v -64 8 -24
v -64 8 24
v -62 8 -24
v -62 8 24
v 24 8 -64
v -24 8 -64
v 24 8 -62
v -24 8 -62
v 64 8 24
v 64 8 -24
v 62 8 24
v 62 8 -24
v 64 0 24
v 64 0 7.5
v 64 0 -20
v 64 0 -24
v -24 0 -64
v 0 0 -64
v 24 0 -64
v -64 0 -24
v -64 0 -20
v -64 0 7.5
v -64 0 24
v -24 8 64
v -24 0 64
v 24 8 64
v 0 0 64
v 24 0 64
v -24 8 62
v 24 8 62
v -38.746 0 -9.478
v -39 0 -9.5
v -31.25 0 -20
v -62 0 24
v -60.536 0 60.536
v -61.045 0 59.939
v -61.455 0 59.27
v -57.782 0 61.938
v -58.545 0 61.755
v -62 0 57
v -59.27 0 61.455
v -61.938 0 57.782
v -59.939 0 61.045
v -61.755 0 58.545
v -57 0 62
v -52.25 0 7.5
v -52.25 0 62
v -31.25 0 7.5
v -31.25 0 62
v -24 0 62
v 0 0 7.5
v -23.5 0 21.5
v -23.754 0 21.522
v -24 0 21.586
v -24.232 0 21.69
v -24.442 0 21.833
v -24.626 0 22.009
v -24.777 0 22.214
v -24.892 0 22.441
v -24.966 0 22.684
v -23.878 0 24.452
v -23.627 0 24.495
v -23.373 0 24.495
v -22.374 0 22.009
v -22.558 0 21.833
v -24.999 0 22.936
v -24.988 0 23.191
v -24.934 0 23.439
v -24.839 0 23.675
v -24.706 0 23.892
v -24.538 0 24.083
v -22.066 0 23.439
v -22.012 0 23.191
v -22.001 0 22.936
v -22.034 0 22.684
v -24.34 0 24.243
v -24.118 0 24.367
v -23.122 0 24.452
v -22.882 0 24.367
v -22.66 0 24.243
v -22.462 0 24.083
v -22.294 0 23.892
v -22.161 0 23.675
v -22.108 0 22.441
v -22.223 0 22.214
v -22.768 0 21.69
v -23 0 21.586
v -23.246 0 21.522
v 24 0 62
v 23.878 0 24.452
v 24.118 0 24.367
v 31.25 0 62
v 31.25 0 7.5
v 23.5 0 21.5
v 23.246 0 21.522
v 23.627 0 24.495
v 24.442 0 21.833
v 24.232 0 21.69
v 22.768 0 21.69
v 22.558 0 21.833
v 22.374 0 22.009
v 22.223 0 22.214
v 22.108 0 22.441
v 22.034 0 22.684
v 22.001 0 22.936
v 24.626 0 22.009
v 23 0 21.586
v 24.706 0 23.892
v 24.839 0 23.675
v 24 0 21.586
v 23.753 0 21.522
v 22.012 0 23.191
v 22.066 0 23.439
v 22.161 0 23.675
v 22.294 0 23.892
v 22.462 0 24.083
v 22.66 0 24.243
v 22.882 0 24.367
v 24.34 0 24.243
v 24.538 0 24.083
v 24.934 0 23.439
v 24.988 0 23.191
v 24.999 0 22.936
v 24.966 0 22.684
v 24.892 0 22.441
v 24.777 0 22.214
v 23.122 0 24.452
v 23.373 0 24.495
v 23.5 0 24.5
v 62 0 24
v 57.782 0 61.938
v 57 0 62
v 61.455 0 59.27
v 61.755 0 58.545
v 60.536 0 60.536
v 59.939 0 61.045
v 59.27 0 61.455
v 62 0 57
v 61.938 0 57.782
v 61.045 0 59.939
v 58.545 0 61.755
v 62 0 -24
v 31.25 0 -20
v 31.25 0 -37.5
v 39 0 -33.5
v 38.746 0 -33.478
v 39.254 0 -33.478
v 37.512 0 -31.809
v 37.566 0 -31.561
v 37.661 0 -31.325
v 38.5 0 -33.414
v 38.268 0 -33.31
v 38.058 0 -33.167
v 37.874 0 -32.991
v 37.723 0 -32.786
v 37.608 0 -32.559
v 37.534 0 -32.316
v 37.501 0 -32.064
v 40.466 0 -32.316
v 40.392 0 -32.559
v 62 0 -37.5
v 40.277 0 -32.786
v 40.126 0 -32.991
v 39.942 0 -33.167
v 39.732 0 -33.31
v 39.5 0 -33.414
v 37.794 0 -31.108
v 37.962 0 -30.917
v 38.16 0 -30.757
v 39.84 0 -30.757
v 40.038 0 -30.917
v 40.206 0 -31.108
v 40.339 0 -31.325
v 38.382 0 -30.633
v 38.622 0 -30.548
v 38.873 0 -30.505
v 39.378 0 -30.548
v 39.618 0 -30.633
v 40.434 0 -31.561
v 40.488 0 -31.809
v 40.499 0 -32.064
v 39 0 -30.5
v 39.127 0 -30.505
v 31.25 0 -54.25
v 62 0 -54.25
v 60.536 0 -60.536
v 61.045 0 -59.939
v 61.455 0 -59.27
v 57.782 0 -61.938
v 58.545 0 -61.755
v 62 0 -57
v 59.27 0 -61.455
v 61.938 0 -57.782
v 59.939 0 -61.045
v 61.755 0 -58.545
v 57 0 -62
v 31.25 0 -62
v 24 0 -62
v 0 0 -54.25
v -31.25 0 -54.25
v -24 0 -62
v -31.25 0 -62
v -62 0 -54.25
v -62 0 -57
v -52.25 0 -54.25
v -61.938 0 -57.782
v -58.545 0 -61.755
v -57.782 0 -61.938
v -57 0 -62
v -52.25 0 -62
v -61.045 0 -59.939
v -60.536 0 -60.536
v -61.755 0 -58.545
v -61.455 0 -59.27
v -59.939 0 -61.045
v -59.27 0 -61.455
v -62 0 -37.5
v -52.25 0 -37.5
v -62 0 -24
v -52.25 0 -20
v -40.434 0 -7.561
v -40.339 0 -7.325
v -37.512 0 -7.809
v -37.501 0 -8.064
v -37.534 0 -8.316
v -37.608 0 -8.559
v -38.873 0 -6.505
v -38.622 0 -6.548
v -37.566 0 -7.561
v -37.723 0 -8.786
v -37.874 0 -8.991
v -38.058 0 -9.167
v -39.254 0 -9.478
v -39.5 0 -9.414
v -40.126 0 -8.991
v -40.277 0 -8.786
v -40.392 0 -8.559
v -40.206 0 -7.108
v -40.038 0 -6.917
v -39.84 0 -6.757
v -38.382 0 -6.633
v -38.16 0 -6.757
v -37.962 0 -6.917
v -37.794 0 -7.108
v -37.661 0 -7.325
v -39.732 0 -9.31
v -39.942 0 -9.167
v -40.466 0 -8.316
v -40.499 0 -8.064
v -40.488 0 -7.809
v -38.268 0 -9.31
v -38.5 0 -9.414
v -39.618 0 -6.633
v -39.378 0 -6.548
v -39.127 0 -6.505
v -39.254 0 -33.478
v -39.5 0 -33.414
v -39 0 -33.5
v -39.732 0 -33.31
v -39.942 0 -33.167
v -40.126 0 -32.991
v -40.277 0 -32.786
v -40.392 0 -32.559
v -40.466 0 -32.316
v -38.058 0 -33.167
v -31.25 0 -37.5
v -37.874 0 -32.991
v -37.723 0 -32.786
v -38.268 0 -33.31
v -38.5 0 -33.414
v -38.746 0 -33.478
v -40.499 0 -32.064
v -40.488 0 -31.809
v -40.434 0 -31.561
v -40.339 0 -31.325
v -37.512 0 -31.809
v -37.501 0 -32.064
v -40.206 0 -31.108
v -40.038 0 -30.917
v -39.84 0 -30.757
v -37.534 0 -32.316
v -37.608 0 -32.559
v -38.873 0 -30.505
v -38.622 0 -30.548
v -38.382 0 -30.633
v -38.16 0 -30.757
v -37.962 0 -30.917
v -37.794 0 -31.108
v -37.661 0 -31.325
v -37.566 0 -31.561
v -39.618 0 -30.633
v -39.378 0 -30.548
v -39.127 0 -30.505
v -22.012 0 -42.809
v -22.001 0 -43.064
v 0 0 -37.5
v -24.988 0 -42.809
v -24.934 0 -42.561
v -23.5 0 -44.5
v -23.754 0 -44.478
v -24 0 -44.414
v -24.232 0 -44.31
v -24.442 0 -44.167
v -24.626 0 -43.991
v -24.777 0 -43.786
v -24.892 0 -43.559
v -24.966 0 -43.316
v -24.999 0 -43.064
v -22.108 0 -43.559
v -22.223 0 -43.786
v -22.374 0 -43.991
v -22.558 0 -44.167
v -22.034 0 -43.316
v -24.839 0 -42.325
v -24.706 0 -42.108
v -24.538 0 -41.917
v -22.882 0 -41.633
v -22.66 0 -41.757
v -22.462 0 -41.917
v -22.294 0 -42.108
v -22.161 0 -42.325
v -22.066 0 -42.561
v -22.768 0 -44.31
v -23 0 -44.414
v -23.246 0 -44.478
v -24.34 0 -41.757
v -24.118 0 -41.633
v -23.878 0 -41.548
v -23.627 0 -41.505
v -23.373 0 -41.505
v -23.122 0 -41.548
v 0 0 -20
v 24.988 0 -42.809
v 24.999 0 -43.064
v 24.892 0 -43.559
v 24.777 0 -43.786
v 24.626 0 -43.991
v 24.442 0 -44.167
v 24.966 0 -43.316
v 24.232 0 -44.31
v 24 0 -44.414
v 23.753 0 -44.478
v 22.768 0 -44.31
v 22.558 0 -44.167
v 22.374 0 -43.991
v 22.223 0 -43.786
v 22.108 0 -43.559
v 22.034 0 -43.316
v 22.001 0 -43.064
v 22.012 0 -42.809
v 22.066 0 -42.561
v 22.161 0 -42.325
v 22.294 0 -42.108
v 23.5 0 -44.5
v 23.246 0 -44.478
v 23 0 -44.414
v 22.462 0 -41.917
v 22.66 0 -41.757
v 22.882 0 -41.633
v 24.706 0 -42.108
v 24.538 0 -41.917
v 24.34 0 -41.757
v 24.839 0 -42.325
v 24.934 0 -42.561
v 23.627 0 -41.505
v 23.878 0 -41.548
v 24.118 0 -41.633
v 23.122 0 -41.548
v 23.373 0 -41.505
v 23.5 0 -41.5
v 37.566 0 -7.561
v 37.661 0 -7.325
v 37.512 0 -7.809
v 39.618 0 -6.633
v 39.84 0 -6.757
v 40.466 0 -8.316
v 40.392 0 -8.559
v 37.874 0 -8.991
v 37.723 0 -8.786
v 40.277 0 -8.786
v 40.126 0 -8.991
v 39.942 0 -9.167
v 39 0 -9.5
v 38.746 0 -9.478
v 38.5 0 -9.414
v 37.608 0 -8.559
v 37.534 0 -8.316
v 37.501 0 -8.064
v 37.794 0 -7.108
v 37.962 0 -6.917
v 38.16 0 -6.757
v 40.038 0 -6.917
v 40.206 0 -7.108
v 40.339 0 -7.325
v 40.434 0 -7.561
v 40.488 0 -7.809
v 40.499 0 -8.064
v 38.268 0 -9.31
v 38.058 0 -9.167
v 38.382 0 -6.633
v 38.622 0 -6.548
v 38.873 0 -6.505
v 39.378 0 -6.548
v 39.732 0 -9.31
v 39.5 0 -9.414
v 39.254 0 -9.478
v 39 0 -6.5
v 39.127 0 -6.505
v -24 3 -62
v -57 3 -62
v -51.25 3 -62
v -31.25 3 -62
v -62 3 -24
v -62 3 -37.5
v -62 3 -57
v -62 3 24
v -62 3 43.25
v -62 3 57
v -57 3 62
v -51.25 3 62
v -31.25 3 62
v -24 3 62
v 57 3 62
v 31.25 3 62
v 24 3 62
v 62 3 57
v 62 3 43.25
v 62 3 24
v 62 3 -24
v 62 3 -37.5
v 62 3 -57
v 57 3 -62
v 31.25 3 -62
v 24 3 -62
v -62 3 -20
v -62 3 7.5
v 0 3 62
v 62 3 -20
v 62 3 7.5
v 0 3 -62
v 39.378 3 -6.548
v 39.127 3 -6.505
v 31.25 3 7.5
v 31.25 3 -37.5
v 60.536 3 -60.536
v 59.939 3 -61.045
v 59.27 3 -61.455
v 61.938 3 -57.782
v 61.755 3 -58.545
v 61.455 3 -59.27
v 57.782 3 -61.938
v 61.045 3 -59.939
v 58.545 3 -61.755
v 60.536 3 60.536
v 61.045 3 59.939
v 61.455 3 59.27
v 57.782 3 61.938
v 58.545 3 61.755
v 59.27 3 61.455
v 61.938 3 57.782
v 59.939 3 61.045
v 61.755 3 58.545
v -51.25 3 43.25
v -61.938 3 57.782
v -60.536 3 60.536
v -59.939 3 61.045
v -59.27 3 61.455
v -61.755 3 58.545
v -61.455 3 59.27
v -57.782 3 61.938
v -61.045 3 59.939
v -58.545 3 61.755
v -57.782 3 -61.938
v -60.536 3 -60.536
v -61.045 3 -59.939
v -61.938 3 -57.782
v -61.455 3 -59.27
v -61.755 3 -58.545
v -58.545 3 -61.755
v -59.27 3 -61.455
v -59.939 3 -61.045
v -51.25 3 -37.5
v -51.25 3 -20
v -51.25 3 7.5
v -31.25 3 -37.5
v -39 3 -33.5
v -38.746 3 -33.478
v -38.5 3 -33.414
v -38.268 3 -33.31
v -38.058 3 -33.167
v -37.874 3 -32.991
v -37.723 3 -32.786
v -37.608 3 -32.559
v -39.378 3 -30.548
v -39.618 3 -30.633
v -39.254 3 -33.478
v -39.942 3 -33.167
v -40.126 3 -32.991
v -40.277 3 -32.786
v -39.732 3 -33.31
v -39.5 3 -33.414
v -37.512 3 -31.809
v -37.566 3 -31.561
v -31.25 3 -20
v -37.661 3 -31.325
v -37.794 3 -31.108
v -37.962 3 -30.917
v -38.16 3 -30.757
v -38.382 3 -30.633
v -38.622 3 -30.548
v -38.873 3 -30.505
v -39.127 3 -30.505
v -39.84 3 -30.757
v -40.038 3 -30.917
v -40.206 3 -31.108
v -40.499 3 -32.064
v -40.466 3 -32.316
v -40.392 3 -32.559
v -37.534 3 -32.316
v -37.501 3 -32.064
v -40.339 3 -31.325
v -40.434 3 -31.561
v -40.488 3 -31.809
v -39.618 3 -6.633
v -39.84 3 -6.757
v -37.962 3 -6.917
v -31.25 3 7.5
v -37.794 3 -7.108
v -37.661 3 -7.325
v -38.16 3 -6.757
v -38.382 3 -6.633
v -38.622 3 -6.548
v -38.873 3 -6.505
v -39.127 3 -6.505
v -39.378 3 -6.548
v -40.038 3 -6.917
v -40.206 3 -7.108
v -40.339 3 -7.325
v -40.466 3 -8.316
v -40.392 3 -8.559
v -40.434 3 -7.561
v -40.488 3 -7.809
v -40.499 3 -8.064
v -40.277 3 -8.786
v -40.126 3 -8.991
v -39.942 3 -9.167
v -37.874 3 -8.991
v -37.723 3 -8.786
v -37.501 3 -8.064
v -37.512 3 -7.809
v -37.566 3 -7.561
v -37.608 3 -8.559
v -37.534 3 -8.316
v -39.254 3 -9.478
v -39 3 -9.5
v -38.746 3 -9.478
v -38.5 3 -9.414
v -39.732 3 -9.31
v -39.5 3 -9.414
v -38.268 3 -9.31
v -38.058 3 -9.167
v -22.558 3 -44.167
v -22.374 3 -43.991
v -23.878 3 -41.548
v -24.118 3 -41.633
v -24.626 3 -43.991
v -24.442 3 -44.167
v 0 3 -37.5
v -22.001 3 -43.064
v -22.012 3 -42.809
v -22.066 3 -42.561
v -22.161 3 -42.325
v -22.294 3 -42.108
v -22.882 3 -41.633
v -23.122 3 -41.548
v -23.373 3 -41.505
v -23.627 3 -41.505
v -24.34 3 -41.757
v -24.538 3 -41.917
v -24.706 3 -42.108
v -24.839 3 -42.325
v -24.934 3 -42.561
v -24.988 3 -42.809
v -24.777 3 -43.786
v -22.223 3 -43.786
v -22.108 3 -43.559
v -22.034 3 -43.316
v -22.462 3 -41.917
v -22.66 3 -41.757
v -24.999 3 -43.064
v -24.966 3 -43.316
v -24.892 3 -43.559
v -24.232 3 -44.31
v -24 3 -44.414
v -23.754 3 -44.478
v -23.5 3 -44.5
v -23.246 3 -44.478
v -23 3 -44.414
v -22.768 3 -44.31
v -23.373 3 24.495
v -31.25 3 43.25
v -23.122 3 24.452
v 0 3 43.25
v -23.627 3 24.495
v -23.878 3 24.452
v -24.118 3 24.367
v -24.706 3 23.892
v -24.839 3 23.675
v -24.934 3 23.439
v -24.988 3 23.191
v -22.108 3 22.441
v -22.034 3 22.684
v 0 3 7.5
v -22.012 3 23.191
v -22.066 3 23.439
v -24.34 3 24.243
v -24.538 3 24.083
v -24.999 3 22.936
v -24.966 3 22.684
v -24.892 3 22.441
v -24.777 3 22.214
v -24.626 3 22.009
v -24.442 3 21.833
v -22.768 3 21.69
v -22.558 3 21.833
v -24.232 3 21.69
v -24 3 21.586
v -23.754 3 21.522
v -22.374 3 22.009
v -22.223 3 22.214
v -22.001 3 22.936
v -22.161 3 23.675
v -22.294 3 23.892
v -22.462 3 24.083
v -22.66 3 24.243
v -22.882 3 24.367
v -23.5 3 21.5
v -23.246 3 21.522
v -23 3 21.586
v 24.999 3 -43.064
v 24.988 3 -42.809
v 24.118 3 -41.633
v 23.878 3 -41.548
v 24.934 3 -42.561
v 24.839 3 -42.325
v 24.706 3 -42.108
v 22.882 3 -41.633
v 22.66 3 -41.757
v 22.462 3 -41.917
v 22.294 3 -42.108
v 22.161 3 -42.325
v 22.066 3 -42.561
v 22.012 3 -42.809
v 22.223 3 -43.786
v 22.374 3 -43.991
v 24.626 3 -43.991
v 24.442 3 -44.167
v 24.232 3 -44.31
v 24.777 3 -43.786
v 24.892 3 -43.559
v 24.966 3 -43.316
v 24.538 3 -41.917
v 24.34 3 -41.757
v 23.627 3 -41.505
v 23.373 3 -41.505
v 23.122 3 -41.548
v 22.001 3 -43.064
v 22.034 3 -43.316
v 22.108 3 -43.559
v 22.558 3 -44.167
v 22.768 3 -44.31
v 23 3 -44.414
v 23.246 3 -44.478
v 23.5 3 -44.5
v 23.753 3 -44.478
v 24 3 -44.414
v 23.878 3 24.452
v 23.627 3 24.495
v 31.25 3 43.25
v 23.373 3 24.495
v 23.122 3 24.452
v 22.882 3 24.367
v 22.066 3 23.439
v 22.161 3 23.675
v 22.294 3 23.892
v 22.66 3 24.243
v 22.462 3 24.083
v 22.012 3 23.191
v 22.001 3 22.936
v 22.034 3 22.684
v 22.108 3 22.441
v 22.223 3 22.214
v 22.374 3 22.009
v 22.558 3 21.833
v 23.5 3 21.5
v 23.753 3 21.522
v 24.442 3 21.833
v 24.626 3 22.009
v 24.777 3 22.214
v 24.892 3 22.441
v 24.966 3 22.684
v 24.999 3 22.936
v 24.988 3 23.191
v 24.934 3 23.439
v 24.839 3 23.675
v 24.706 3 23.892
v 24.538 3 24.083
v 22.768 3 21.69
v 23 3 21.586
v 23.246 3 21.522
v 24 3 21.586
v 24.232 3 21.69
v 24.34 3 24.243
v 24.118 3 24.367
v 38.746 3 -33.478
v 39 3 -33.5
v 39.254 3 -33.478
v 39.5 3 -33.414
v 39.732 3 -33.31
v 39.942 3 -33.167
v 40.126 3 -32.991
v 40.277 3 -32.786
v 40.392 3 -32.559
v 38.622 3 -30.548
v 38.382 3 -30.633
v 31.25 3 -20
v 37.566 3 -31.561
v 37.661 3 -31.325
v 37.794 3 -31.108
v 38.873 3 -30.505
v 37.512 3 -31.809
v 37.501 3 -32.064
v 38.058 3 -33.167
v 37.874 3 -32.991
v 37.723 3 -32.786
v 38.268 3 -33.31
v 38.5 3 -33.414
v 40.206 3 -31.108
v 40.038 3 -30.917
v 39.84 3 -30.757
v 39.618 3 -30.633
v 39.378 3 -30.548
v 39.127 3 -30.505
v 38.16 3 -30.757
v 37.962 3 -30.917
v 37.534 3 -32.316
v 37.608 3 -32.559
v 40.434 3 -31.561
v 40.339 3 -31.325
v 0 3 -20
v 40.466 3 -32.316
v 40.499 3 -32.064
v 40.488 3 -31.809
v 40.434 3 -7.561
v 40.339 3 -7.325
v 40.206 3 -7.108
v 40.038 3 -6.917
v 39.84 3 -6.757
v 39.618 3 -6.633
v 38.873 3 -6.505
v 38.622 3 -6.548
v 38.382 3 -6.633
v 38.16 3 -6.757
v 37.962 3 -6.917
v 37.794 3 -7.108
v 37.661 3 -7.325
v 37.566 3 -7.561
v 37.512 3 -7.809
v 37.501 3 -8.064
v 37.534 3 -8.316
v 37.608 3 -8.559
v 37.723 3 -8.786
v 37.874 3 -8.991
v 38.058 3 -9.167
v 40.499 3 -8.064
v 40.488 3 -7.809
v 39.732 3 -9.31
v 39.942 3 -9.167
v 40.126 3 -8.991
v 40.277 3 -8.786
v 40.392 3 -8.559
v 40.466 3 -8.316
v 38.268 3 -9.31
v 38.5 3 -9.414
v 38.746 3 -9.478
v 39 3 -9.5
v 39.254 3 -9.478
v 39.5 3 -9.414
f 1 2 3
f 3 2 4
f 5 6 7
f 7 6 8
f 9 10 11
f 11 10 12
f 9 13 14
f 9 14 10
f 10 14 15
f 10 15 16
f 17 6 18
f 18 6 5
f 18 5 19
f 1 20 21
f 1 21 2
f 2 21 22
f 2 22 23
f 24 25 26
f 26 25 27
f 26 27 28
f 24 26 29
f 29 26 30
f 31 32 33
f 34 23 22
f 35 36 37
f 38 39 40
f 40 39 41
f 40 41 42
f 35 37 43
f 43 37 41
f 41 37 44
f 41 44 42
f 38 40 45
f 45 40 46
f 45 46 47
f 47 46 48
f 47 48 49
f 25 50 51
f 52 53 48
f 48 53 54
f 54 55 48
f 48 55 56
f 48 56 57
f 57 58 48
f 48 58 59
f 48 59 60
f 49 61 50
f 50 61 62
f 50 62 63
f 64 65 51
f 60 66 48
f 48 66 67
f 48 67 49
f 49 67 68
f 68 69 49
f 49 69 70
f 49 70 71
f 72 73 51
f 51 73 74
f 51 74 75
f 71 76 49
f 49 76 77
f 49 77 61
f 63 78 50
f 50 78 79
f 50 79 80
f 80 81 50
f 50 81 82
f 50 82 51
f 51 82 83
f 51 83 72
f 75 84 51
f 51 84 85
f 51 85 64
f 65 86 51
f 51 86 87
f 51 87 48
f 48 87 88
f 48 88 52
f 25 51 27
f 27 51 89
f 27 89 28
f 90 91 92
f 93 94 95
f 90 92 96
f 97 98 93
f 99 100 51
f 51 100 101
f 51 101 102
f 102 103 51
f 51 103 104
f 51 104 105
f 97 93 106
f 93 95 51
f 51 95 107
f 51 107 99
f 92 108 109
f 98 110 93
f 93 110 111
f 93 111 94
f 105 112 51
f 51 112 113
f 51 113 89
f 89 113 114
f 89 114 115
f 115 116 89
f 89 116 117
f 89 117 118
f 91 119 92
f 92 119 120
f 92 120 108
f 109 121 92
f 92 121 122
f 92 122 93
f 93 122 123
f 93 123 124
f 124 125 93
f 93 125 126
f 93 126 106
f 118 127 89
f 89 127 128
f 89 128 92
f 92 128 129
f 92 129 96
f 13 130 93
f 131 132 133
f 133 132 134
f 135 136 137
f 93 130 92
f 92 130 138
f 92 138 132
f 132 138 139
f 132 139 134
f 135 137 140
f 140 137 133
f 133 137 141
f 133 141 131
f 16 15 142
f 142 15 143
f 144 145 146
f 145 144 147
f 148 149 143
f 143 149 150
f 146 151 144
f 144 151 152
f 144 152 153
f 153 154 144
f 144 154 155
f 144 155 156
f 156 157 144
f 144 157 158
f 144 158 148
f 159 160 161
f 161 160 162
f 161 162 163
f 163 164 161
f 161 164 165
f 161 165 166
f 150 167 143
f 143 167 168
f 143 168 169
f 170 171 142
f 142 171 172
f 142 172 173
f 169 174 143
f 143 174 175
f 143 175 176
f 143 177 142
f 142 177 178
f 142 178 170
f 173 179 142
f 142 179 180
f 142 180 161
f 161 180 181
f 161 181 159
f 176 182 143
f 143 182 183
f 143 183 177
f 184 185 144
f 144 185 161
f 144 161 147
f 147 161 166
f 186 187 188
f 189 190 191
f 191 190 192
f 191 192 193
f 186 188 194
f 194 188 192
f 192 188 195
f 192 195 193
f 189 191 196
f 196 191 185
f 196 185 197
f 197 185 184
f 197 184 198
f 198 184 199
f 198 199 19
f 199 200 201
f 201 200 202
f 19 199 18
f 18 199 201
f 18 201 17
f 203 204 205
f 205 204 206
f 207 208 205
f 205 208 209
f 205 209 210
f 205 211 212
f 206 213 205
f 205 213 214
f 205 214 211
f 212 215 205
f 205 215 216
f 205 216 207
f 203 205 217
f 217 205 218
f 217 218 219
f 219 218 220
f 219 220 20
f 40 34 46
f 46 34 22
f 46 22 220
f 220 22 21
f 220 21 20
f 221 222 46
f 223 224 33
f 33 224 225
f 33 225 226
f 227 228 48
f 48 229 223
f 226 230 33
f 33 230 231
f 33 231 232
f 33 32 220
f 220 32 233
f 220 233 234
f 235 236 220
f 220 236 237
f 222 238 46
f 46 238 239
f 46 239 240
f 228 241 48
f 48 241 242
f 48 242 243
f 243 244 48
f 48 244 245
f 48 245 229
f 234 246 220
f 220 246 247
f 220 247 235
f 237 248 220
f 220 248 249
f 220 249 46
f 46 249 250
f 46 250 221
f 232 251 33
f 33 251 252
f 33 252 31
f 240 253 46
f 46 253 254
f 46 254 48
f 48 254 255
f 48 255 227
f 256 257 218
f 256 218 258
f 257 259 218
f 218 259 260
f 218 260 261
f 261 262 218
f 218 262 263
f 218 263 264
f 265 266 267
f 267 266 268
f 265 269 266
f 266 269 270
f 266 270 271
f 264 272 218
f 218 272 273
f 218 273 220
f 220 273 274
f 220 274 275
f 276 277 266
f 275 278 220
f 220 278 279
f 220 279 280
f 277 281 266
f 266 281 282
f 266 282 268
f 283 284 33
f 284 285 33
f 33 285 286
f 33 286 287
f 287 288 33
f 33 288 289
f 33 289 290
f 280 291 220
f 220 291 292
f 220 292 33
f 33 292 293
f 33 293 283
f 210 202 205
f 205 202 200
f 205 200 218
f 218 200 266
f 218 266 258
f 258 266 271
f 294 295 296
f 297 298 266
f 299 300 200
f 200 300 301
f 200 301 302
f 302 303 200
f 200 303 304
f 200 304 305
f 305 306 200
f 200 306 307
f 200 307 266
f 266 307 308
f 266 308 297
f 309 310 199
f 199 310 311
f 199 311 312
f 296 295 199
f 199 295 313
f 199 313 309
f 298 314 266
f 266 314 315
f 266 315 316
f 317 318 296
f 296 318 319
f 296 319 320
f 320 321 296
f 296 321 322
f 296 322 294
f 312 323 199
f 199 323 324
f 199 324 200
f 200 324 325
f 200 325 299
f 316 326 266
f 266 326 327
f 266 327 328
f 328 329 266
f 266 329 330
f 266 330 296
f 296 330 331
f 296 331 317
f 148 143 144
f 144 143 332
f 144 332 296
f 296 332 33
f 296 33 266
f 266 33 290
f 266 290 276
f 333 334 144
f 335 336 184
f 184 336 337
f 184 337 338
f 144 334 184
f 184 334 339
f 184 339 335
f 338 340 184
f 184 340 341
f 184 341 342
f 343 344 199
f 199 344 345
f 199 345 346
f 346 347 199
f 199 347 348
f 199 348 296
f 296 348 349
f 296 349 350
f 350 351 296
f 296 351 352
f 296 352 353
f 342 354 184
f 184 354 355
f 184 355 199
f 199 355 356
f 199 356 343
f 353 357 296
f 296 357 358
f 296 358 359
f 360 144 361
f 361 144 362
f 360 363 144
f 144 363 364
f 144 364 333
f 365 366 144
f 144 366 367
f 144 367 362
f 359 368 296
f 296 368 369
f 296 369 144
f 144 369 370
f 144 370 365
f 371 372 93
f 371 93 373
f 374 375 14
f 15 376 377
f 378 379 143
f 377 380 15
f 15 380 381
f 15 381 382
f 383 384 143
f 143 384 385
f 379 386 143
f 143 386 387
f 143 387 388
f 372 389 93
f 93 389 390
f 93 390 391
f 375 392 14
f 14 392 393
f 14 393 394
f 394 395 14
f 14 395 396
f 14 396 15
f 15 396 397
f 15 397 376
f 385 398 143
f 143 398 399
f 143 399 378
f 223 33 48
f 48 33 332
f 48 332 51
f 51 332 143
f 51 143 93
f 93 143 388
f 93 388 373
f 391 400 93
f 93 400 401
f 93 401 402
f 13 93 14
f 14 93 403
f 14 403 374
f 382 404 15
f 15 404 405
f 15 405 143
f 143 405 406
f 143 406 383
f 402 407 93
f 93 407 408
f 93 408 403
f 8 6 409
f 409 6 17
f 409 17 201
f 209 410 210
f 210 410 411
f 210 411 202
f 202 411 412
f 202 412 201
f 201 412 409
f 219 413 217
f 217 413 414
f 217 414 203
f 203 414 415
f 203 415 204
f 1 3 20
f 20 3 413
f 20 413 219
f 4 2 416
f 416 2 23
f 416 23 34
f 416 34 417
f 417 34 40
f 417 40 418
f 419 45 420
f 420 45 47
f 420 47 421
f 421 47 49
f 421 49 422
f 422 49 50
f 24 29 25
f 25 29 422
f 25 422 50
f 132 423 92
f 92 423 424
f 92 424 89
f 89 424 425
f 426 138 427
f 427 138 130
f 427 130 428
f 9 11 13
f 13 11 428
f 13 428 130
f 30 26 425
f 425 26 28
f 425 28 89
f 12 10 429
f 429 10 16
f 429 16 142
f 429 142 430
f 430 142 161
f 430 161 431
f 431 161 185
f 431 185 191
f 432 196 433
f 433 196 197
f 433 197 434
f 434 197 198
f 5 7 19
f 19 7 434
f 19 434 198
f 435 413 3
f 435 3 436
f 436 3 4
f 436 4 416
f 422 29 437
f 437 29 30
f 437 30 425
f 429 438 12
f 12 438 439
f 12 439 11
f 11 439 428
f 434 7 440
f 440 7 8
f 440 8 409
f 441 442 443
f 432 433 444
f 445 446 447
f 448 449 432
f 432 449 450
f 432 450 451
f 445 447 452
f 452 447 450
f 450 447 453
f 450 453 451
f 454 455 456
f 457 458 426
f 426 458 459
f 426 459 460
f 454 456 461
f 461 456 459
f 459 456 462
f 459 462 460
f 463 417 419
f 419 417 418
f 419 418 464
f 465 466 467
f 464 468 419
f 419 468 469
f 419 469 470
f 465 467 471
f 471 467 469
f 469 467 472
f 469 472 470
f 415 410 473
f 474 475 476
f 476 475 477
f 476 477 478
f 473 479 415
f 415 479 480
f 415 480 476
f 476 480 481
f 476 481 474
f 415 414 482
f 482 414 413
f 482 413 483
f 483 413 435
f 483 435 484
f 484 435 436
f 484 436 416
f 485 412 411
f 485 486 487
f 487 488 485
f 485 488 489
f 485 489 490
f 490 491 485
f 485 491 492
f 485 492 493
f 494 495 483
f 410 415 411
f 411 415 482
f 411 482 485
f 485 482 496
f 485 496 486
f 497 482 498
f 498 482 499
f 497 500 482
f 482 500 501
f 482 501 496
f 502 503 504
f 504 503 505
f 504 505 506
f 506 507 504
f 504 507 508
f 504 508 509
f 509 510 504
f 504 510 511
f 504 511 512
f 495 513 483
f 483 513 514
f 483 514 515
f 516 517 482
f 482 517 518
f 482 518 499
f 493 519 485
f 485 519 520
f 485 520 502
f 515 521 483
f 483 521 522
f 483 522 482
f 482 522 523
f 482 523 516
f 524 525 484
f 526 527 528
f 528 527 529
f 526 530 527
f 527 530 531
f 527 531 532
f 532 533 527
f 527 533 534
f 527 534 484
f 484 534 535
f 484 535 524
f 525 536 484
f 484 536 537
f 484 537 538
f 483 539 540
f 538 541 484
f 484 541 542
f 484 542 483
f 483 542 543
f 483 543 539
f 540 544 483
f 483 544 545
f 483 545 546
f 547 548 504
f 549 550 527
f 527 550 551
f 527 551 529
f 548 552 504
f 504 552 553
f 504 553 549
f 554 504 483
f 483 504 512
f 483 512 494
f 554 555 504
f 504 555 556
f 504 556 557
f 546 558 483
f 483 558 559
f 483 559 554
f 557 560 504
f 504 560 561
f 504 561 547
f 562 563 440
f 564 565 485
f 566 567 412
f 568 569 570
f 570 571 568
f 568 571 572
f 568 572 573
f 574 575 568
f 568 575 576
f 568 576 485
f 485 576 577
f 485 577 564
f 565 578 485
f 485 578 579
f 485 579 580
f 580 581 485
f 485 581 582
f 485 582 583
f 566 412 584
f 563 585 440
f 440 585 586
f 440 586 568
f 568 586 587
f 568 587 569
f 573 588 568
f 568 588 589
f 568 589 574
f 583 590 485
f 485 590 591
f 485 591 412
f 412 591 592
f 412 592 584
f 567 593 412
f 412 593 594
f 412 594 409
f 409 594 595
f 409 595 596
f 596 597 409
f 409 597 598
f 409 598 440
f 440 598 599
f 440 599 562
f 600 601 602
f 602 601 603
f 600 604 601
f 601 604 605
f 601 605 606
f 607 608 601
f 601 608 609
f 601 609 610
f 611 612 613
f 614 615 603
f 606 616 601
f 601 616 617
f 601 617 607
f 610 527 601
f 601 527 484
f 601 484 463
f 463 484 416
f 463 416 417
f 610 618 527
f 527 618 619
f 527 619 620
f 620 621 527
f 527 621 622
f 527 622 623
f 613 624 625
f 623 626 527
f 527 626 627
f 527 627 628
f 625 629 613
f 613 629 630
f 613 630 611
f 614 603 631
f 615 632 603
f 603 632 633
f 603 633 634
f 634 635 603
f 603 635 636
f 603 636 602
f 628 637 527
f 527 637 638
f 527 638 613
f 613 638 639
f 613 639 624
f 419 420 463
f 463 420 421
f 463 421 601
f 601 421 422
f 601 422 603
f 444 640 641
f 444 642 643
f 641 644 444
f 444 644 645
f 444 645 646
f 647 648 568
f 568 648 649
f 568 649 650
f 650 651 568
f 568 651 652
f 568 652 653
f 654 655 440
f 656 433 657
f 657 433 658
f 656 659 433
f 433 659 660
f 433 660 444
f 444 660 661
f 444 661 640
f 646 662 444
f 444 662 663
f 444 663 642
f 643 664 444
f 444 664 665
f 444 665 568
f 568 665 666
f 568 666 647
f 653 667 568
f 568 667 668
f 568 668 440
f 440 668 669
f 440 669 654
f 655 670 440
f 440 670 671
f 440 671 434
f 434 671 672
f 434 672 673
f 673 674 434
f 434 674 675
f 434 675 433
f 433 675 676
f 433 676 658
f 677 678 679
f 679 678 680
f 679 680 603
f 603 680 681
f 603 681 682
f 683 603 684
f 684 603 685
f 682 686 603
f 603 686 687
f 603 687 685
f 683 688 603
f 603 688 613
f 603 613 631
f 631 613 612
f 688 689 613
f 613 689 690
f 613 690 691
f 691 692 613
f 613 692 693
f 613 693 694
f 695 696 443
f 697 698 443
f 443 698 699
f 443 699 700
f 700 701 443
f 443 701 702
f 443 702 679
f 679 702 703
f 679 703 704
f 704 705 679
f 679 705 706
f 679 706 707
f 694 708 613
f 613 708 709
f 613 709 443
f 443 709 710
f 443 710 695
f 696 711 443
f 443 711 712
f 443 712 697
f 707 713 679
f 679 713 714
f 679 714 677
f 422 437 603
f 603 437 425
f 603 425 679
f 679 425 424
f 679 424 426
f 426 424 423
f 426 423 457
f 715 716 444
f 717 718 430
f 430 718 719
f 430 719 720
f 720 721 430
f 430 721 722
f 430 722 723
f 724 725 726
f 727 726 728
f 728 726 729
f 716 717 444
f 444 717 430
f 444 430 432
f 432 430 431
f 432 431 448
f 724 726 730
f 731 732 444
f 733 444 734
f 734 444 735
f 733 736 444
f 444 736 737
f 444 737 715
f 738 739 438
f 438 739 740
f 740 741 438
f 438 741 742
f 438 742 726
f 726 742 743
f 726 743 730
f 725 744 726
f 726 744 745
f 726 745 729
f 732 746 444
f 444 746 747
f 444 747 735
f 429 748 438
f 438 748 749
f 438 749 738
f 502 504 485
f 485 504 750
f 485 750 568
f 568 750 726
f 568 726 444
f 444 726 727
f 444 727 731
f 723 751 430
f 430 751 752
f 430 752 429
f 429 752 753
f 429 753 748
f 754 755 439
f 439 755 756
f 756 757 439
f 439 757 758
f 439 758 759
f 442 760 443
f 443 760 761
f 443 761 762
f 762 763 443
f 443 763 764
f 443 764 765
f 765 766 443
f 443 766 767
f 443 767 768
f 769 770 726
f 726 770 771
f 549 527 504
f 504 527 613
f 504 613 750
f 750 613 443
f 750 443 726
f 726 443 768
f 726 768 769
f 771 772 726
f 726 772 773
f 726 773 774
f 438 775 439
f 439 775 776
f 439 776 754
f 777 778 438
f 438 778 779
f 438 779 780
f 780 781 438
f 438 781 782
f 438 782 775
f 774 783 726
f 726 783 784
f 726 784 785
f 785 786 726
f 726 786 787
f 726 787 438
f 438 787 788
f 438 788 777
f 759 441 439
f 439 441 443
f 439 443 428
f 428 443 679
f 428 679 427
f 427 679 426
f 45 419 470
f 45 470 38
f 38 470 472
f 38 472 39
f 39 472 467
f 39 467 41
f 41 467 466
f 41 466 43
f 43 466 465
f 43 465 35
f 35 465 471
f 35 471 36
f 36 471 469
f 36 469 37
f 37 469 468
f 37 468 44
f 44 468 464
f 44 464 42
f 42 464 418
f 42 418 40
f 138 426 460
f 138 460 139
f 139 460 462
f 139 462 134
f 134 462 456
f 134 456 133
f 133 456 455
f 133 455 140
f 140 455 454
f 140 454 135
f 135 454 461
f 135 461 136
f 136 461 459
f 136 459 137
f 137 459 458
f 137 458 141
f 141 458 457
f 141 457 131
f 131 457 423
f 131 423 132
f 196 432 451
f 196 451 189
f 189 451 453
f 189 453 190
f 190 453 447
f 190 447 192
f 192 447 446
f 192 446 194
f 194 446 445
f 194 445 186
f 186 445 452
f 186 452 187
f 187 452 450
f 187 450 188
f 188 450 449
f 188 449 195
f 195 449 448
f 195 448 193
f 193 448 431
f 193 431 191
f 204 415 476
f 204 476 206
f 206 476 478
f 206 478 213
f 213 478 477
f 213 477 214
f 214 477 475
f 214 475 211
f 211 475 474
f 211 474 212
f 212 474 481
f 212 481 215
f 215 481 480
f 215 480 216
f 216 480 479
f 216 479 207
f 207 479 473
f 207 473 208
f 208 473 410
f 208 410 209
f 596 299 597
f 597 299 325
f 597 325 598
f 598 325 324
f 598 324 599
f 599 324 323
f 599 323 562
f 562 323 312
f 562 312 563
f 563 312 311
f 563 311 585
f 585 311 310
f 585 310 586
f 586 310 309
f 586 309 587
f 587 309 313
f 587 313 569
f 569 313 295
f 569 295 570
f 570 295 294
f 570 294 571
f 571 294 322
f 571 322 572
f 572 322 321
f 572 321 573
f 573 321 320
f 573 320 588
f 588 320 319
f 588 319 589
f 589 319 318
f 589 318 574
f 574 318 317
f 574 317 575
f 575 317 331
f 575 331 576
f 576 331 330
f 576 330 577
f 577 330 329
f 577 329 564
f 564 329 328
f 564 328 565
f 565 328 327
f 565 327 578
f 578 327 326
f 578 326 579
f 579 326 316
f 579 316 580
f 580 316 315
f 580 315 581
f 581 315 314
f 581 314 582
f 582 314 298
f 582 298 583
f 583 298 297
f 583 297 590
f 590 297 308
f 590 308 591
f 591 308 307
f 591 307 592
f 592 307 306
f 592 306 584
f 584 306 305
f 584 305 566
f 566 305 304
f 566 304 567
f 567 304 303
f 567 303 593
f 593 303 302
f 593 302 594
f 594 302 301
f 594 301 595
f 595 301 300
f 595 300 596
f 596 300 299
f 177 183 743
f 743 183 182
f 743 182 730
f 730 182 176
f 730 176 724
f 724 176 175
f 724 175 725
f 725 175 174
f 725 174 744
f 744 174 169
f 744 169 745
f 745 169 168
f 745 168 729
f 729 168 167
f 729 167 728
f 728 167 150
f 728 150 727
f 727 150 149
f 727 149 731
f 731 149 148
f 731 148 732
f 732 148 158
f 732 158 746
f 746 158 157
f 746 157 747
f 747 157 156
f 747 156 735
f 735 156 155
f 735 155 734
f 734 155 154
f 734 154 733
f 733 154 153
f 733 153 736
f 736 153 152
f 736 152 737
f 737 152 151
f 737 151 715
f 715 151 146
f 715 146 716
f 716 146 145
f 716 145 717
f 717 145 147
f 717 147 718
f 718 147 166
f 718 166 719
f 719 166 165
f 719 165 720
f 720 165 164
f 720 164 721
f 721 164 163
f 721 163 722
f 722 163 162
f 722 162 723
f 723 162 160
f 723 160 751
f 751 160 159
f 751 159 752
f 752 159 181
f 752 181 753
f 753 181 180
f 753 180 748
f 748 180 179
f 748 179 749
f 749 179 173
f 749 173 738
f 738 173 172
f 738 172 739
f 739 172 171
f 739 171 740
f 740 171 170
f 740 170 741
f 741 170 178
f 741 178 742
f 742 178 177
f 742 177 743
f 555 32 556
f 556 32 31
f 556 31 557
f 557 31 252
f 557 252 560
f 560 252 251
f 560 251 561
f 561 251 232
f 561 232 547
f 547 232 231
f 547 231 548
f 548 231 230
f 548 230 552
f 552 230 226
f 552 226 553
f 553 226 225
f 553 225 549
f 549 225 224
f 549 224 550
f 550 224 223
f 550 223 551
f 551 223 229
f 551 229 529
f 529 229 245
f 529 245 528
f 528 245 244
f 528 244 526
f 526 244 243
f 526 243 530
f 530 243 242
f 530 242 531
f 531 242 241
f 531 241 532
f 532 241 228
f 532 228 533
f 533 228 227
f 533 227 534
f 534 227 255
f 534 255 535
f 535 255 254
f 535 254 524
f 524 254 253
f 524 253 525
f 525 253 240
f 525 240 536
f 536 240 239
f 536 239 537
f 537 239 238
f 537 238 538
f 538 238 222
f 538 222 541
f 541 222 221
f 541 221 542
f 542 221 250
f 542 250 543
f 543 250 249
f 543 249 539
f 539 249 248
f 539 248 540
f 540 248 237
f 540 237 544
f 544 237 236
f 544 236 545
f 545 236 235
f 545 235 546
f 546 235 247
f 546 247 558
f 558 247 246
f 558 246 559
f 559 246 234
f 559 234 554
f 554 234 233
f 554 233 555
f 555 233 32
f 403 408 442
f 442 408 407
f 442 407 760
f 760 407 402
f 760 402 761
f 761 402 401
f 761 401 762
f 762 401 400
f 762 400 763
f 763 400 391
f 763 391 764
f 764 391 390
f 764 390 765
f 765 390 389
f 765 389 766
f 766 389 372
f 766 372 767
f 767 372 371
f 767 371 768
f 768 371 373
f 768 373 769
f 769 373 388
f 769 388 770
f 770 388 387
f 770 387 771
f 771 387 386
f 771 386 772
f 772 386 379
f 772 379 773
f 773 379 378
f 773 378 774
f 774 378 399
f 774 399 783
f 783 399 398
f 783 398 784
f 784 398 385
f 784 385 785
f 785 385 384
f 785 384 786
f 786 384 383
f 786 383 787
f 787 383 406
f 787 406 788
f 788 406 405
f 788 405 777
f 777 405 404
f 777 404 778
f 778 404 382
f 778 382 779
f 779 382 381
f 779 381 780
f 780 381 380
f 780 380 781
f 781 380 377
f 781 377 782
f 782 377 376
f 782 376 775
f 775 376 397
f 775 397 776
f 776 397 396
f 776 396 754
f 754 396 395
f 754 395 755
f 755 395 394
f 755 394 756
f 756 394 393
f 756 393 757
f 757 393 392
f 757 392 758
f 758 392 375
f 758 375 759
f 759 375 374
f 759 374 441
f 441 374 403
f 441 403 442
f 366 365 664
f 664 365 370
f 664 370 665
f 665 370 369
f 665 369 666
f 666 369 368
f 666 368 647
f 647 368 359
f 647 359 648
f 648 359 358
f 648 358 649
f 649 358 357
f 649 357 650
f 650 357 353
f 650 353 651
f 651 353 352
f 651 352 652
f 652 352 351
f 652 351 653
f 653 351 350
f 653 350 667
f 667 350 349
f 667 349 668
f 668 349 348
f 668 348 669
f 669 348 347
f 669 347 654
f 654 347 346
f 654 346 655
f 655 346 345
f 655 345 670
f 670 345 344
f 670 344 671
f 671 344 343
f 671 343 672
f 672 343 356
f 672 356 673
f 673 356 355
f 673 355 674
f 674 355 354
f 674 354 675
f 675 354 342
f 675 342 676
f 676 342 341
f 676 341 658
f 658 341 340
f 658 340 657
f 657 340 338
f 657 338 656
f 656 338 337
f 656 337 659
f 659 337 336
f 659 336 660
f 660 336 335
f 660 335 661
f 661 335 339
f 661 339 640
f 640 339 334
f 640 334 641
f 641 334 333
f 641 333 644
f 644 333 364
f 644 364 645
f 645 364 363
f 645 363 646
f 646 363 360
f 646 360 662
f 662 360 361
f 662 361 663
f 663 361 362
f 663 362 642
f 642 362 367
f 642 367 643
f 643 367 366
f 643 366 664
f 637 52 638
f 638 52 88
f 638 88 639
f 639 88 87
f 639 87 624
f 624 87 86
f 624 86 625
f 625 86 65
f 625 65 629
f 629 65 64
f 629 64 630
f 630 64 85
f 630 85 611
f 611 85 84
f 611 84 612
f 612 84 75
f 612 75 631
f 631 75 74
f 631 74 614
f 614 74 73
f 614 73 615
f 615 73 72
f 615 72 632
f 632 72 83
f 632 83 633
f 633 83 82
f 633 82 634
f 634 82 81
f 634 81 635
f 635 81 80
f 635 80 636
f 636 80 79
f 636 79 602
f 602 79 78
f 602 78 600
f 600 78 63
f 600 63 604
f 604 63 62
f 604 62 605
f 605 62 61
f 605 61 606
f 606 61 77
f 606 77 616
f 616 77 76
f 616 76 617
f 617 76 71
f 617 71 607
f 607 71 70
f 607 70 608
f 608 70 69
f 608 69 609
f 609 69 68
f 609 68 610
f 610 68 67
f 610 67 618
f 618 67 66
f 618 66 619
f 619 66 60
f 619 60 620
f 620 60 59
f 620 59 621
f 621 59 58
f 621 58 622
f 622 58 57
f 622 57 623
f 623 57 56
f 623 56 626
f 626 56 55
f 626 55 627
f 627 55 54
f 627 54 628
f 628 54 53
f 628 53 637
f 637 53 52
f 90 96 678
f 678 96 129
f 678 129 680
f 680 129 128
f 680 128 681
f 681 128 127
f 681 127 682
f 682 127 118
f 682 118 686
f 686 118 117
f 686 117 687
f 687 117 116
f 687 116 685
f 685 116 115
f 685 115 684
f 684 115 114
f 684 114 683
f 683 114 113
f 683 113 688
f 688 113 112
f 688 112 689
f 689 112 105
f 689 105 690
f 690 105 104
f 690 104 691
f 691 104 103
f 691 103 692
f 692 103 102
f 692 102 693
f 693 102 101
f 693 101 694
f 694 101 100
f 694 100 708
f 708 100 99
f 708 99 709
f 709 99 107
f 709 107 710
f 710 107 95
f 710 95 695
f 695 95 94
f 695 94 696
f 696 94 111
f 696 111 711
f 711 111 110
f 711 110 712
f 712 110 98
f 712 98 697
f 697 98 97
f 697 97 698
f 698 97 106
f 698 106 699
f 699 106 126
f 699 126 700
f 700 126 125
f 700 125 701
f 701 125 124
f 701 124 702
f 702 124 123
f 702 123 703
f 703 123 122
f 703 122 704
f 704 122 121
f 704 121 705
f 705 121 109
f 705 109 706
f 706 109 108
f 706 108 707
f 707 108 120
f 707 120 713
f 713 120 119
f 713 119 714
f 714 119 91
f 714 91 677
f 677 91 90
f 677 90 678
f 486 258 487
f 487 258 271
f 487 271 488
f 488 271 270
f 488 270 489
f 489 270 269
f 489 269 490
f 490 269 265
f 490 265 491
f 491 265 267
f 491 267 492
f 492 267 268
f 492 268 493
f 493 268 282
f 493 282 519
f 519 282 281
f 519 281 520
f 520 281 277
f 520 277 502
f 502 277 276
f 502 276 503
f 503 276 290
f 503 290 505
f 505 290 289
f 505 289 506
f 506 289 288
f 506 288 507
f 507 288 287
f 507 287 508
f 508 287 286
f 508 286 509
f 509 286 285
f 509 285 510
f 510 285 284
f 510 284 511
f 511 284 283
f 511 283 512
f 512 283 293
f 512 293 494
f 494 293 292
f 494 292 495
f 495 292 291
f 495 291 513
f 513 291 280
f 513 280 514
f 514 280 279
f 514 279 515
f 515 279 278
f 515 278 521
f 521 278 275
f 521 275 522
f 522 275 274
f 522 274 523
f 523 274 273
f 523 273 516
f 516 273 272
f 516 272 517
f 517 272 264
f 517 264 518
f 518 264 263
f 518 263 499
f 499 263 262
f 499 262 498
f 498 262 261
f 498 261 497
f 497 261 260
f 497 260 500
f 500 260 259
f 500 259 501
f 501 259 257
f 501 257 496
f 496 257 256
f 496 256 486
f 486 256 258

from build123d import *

# Parameters (mm, degrees)
SKETCH_1_W          = 128
SKETCH_1_H          = 128
EXTRUDE_1_DEPTH     = 8
CUT_EXTRUDE_1_DEPTH = 8
SKETCH_3_W          = 124
SKETCH_3_H          = 124
CUT_EXTRUDE_2_DEPTH = 5
FILLET_1_R          = 5
FILLET_2_R          = 5
FILLET_3_R          = 5
FILLET_4_R          = 5
SKETCH_4_R          = 1.5
CUT_EXTRUDE_3_DEPTH = 4


with BuildPart() as part:
    # 草图1 → 凸台-拉伸1 (new body)
    with BuildSketch(Plane(origin=(0, 0, 0), x_dir=(1, 0, 0), z_dir=(0, 1, 0))):
        Rectangle(SKETCH_1_W, SKETCH_1_H)
    extrude(amount=EXTRUDE_1_DEPTH)

    # 草图2 → 切除-拉伸1 (cut)
    with BuildSketch(Plane(origin=(0, 8, 0), x_dir=(1, 0, 0), z_dir=(0, 1, 0))):
        Polygon((-64, 64), (-64, 24), (-62, 24), (-62, 62), (-24, 62), (-24, 64), align=None)
        Polygon((-64, -24), (-62, -24), (-62, -62), (-24, -62), (-24, -64), (-64, -64), align=None)
        Polygon((24, -62), (24, -64), (64, -64), (64, -24), (62, -24), (62, -62), align=None)
        Polygon((64, 24), (62, 24), (62, 62), (24, 62), (24, 64), (64, 64), align=None)
    extrude(amount=-CUT_EXTRUDE_1_DEPTH, mode=Mode.SUBTRACT)

    # 草图3 → 切除-拉伸2 (cut)
    with BuildSketch(Plane(origin=(0, 8, 0), x_dir=(1, 0, 0), z_dir=(0, 1, 0))):
        Rectangle(SKETCH_3_W, SKETCH_3_H)
    extrude(amount=-CUT_EXTRUDE_2_DEPTH, mode=Mode.SUBTRACT)

    # 圆角1
    fillet_1_edges = [part.edges().sort_by_distance(p)[0] for p in [
        (-62, 1.5, 62),
    ]]
    fillet(fillet_1_edges, radius=FILLET_1_R)

    # 圆角2
    fillet_2_edges = [part.edges().sort_by_distance(p)[0] for p in [
        (62, 1.5, 62),
    ]]
    fillet(fillet_2_edges, radius=FILLET_2_R)

    # 圆角3
    fillet_3_edges = [part.edges().sort_by_distance(p)[0] for p in [
        (62, 1.5, -62),
    ]]
    fillet(fillet_3_edges, radius=FILLET_3_R)

    # 圆角4
    fillet_4_edges = [part.edges().sort_by_distance(p)[0] for p in [
        (-62, 1.5, -62),
    ]]
    fillet(fillet_4_edges, radius=FILLET_4_R)

    # 草图4 → 切除-拉伸3 (cut)
    with BuildSketch(Plane.XZ):
        with Locations(Location((-23.5, -43, 0), (0, 0, 270))):
            Circle(SKETCH_4_R)
        with Locations(Location((23.5, -43, 0), (0, 0, 270))):
            Circle(SKETCH_4_R)
        with Locations(Location((-23.5, 23, 0), (0, 0, 270))):
            Circle(SKETCH_4_R)
        with Locations(Location((23.5, 23, 0), (0, 0, 270))):
            Circle(SKETCH_4_R)
        with Locations(Location((-39, -32, 0), (0, 0, 270))):
            Circle(SKETCH_4_R)
        with Locations(Location((39, -32, 0), (0, 0, 270))):
            Circle(SKETCH_4_R)
        with Locations(Location((-39, -8, 0), (0, 0, 270))):
            Circle(SKETCH_4_R)
        with Locations(Location((39, -8, 0), (0, 0, 270))):
            Circle(SKETCH_4_R)
    extrude(amount=-CUT_EXTRUDE_3_DEPTH, mode=Mode.SUBTRACT)


solid = part.part
